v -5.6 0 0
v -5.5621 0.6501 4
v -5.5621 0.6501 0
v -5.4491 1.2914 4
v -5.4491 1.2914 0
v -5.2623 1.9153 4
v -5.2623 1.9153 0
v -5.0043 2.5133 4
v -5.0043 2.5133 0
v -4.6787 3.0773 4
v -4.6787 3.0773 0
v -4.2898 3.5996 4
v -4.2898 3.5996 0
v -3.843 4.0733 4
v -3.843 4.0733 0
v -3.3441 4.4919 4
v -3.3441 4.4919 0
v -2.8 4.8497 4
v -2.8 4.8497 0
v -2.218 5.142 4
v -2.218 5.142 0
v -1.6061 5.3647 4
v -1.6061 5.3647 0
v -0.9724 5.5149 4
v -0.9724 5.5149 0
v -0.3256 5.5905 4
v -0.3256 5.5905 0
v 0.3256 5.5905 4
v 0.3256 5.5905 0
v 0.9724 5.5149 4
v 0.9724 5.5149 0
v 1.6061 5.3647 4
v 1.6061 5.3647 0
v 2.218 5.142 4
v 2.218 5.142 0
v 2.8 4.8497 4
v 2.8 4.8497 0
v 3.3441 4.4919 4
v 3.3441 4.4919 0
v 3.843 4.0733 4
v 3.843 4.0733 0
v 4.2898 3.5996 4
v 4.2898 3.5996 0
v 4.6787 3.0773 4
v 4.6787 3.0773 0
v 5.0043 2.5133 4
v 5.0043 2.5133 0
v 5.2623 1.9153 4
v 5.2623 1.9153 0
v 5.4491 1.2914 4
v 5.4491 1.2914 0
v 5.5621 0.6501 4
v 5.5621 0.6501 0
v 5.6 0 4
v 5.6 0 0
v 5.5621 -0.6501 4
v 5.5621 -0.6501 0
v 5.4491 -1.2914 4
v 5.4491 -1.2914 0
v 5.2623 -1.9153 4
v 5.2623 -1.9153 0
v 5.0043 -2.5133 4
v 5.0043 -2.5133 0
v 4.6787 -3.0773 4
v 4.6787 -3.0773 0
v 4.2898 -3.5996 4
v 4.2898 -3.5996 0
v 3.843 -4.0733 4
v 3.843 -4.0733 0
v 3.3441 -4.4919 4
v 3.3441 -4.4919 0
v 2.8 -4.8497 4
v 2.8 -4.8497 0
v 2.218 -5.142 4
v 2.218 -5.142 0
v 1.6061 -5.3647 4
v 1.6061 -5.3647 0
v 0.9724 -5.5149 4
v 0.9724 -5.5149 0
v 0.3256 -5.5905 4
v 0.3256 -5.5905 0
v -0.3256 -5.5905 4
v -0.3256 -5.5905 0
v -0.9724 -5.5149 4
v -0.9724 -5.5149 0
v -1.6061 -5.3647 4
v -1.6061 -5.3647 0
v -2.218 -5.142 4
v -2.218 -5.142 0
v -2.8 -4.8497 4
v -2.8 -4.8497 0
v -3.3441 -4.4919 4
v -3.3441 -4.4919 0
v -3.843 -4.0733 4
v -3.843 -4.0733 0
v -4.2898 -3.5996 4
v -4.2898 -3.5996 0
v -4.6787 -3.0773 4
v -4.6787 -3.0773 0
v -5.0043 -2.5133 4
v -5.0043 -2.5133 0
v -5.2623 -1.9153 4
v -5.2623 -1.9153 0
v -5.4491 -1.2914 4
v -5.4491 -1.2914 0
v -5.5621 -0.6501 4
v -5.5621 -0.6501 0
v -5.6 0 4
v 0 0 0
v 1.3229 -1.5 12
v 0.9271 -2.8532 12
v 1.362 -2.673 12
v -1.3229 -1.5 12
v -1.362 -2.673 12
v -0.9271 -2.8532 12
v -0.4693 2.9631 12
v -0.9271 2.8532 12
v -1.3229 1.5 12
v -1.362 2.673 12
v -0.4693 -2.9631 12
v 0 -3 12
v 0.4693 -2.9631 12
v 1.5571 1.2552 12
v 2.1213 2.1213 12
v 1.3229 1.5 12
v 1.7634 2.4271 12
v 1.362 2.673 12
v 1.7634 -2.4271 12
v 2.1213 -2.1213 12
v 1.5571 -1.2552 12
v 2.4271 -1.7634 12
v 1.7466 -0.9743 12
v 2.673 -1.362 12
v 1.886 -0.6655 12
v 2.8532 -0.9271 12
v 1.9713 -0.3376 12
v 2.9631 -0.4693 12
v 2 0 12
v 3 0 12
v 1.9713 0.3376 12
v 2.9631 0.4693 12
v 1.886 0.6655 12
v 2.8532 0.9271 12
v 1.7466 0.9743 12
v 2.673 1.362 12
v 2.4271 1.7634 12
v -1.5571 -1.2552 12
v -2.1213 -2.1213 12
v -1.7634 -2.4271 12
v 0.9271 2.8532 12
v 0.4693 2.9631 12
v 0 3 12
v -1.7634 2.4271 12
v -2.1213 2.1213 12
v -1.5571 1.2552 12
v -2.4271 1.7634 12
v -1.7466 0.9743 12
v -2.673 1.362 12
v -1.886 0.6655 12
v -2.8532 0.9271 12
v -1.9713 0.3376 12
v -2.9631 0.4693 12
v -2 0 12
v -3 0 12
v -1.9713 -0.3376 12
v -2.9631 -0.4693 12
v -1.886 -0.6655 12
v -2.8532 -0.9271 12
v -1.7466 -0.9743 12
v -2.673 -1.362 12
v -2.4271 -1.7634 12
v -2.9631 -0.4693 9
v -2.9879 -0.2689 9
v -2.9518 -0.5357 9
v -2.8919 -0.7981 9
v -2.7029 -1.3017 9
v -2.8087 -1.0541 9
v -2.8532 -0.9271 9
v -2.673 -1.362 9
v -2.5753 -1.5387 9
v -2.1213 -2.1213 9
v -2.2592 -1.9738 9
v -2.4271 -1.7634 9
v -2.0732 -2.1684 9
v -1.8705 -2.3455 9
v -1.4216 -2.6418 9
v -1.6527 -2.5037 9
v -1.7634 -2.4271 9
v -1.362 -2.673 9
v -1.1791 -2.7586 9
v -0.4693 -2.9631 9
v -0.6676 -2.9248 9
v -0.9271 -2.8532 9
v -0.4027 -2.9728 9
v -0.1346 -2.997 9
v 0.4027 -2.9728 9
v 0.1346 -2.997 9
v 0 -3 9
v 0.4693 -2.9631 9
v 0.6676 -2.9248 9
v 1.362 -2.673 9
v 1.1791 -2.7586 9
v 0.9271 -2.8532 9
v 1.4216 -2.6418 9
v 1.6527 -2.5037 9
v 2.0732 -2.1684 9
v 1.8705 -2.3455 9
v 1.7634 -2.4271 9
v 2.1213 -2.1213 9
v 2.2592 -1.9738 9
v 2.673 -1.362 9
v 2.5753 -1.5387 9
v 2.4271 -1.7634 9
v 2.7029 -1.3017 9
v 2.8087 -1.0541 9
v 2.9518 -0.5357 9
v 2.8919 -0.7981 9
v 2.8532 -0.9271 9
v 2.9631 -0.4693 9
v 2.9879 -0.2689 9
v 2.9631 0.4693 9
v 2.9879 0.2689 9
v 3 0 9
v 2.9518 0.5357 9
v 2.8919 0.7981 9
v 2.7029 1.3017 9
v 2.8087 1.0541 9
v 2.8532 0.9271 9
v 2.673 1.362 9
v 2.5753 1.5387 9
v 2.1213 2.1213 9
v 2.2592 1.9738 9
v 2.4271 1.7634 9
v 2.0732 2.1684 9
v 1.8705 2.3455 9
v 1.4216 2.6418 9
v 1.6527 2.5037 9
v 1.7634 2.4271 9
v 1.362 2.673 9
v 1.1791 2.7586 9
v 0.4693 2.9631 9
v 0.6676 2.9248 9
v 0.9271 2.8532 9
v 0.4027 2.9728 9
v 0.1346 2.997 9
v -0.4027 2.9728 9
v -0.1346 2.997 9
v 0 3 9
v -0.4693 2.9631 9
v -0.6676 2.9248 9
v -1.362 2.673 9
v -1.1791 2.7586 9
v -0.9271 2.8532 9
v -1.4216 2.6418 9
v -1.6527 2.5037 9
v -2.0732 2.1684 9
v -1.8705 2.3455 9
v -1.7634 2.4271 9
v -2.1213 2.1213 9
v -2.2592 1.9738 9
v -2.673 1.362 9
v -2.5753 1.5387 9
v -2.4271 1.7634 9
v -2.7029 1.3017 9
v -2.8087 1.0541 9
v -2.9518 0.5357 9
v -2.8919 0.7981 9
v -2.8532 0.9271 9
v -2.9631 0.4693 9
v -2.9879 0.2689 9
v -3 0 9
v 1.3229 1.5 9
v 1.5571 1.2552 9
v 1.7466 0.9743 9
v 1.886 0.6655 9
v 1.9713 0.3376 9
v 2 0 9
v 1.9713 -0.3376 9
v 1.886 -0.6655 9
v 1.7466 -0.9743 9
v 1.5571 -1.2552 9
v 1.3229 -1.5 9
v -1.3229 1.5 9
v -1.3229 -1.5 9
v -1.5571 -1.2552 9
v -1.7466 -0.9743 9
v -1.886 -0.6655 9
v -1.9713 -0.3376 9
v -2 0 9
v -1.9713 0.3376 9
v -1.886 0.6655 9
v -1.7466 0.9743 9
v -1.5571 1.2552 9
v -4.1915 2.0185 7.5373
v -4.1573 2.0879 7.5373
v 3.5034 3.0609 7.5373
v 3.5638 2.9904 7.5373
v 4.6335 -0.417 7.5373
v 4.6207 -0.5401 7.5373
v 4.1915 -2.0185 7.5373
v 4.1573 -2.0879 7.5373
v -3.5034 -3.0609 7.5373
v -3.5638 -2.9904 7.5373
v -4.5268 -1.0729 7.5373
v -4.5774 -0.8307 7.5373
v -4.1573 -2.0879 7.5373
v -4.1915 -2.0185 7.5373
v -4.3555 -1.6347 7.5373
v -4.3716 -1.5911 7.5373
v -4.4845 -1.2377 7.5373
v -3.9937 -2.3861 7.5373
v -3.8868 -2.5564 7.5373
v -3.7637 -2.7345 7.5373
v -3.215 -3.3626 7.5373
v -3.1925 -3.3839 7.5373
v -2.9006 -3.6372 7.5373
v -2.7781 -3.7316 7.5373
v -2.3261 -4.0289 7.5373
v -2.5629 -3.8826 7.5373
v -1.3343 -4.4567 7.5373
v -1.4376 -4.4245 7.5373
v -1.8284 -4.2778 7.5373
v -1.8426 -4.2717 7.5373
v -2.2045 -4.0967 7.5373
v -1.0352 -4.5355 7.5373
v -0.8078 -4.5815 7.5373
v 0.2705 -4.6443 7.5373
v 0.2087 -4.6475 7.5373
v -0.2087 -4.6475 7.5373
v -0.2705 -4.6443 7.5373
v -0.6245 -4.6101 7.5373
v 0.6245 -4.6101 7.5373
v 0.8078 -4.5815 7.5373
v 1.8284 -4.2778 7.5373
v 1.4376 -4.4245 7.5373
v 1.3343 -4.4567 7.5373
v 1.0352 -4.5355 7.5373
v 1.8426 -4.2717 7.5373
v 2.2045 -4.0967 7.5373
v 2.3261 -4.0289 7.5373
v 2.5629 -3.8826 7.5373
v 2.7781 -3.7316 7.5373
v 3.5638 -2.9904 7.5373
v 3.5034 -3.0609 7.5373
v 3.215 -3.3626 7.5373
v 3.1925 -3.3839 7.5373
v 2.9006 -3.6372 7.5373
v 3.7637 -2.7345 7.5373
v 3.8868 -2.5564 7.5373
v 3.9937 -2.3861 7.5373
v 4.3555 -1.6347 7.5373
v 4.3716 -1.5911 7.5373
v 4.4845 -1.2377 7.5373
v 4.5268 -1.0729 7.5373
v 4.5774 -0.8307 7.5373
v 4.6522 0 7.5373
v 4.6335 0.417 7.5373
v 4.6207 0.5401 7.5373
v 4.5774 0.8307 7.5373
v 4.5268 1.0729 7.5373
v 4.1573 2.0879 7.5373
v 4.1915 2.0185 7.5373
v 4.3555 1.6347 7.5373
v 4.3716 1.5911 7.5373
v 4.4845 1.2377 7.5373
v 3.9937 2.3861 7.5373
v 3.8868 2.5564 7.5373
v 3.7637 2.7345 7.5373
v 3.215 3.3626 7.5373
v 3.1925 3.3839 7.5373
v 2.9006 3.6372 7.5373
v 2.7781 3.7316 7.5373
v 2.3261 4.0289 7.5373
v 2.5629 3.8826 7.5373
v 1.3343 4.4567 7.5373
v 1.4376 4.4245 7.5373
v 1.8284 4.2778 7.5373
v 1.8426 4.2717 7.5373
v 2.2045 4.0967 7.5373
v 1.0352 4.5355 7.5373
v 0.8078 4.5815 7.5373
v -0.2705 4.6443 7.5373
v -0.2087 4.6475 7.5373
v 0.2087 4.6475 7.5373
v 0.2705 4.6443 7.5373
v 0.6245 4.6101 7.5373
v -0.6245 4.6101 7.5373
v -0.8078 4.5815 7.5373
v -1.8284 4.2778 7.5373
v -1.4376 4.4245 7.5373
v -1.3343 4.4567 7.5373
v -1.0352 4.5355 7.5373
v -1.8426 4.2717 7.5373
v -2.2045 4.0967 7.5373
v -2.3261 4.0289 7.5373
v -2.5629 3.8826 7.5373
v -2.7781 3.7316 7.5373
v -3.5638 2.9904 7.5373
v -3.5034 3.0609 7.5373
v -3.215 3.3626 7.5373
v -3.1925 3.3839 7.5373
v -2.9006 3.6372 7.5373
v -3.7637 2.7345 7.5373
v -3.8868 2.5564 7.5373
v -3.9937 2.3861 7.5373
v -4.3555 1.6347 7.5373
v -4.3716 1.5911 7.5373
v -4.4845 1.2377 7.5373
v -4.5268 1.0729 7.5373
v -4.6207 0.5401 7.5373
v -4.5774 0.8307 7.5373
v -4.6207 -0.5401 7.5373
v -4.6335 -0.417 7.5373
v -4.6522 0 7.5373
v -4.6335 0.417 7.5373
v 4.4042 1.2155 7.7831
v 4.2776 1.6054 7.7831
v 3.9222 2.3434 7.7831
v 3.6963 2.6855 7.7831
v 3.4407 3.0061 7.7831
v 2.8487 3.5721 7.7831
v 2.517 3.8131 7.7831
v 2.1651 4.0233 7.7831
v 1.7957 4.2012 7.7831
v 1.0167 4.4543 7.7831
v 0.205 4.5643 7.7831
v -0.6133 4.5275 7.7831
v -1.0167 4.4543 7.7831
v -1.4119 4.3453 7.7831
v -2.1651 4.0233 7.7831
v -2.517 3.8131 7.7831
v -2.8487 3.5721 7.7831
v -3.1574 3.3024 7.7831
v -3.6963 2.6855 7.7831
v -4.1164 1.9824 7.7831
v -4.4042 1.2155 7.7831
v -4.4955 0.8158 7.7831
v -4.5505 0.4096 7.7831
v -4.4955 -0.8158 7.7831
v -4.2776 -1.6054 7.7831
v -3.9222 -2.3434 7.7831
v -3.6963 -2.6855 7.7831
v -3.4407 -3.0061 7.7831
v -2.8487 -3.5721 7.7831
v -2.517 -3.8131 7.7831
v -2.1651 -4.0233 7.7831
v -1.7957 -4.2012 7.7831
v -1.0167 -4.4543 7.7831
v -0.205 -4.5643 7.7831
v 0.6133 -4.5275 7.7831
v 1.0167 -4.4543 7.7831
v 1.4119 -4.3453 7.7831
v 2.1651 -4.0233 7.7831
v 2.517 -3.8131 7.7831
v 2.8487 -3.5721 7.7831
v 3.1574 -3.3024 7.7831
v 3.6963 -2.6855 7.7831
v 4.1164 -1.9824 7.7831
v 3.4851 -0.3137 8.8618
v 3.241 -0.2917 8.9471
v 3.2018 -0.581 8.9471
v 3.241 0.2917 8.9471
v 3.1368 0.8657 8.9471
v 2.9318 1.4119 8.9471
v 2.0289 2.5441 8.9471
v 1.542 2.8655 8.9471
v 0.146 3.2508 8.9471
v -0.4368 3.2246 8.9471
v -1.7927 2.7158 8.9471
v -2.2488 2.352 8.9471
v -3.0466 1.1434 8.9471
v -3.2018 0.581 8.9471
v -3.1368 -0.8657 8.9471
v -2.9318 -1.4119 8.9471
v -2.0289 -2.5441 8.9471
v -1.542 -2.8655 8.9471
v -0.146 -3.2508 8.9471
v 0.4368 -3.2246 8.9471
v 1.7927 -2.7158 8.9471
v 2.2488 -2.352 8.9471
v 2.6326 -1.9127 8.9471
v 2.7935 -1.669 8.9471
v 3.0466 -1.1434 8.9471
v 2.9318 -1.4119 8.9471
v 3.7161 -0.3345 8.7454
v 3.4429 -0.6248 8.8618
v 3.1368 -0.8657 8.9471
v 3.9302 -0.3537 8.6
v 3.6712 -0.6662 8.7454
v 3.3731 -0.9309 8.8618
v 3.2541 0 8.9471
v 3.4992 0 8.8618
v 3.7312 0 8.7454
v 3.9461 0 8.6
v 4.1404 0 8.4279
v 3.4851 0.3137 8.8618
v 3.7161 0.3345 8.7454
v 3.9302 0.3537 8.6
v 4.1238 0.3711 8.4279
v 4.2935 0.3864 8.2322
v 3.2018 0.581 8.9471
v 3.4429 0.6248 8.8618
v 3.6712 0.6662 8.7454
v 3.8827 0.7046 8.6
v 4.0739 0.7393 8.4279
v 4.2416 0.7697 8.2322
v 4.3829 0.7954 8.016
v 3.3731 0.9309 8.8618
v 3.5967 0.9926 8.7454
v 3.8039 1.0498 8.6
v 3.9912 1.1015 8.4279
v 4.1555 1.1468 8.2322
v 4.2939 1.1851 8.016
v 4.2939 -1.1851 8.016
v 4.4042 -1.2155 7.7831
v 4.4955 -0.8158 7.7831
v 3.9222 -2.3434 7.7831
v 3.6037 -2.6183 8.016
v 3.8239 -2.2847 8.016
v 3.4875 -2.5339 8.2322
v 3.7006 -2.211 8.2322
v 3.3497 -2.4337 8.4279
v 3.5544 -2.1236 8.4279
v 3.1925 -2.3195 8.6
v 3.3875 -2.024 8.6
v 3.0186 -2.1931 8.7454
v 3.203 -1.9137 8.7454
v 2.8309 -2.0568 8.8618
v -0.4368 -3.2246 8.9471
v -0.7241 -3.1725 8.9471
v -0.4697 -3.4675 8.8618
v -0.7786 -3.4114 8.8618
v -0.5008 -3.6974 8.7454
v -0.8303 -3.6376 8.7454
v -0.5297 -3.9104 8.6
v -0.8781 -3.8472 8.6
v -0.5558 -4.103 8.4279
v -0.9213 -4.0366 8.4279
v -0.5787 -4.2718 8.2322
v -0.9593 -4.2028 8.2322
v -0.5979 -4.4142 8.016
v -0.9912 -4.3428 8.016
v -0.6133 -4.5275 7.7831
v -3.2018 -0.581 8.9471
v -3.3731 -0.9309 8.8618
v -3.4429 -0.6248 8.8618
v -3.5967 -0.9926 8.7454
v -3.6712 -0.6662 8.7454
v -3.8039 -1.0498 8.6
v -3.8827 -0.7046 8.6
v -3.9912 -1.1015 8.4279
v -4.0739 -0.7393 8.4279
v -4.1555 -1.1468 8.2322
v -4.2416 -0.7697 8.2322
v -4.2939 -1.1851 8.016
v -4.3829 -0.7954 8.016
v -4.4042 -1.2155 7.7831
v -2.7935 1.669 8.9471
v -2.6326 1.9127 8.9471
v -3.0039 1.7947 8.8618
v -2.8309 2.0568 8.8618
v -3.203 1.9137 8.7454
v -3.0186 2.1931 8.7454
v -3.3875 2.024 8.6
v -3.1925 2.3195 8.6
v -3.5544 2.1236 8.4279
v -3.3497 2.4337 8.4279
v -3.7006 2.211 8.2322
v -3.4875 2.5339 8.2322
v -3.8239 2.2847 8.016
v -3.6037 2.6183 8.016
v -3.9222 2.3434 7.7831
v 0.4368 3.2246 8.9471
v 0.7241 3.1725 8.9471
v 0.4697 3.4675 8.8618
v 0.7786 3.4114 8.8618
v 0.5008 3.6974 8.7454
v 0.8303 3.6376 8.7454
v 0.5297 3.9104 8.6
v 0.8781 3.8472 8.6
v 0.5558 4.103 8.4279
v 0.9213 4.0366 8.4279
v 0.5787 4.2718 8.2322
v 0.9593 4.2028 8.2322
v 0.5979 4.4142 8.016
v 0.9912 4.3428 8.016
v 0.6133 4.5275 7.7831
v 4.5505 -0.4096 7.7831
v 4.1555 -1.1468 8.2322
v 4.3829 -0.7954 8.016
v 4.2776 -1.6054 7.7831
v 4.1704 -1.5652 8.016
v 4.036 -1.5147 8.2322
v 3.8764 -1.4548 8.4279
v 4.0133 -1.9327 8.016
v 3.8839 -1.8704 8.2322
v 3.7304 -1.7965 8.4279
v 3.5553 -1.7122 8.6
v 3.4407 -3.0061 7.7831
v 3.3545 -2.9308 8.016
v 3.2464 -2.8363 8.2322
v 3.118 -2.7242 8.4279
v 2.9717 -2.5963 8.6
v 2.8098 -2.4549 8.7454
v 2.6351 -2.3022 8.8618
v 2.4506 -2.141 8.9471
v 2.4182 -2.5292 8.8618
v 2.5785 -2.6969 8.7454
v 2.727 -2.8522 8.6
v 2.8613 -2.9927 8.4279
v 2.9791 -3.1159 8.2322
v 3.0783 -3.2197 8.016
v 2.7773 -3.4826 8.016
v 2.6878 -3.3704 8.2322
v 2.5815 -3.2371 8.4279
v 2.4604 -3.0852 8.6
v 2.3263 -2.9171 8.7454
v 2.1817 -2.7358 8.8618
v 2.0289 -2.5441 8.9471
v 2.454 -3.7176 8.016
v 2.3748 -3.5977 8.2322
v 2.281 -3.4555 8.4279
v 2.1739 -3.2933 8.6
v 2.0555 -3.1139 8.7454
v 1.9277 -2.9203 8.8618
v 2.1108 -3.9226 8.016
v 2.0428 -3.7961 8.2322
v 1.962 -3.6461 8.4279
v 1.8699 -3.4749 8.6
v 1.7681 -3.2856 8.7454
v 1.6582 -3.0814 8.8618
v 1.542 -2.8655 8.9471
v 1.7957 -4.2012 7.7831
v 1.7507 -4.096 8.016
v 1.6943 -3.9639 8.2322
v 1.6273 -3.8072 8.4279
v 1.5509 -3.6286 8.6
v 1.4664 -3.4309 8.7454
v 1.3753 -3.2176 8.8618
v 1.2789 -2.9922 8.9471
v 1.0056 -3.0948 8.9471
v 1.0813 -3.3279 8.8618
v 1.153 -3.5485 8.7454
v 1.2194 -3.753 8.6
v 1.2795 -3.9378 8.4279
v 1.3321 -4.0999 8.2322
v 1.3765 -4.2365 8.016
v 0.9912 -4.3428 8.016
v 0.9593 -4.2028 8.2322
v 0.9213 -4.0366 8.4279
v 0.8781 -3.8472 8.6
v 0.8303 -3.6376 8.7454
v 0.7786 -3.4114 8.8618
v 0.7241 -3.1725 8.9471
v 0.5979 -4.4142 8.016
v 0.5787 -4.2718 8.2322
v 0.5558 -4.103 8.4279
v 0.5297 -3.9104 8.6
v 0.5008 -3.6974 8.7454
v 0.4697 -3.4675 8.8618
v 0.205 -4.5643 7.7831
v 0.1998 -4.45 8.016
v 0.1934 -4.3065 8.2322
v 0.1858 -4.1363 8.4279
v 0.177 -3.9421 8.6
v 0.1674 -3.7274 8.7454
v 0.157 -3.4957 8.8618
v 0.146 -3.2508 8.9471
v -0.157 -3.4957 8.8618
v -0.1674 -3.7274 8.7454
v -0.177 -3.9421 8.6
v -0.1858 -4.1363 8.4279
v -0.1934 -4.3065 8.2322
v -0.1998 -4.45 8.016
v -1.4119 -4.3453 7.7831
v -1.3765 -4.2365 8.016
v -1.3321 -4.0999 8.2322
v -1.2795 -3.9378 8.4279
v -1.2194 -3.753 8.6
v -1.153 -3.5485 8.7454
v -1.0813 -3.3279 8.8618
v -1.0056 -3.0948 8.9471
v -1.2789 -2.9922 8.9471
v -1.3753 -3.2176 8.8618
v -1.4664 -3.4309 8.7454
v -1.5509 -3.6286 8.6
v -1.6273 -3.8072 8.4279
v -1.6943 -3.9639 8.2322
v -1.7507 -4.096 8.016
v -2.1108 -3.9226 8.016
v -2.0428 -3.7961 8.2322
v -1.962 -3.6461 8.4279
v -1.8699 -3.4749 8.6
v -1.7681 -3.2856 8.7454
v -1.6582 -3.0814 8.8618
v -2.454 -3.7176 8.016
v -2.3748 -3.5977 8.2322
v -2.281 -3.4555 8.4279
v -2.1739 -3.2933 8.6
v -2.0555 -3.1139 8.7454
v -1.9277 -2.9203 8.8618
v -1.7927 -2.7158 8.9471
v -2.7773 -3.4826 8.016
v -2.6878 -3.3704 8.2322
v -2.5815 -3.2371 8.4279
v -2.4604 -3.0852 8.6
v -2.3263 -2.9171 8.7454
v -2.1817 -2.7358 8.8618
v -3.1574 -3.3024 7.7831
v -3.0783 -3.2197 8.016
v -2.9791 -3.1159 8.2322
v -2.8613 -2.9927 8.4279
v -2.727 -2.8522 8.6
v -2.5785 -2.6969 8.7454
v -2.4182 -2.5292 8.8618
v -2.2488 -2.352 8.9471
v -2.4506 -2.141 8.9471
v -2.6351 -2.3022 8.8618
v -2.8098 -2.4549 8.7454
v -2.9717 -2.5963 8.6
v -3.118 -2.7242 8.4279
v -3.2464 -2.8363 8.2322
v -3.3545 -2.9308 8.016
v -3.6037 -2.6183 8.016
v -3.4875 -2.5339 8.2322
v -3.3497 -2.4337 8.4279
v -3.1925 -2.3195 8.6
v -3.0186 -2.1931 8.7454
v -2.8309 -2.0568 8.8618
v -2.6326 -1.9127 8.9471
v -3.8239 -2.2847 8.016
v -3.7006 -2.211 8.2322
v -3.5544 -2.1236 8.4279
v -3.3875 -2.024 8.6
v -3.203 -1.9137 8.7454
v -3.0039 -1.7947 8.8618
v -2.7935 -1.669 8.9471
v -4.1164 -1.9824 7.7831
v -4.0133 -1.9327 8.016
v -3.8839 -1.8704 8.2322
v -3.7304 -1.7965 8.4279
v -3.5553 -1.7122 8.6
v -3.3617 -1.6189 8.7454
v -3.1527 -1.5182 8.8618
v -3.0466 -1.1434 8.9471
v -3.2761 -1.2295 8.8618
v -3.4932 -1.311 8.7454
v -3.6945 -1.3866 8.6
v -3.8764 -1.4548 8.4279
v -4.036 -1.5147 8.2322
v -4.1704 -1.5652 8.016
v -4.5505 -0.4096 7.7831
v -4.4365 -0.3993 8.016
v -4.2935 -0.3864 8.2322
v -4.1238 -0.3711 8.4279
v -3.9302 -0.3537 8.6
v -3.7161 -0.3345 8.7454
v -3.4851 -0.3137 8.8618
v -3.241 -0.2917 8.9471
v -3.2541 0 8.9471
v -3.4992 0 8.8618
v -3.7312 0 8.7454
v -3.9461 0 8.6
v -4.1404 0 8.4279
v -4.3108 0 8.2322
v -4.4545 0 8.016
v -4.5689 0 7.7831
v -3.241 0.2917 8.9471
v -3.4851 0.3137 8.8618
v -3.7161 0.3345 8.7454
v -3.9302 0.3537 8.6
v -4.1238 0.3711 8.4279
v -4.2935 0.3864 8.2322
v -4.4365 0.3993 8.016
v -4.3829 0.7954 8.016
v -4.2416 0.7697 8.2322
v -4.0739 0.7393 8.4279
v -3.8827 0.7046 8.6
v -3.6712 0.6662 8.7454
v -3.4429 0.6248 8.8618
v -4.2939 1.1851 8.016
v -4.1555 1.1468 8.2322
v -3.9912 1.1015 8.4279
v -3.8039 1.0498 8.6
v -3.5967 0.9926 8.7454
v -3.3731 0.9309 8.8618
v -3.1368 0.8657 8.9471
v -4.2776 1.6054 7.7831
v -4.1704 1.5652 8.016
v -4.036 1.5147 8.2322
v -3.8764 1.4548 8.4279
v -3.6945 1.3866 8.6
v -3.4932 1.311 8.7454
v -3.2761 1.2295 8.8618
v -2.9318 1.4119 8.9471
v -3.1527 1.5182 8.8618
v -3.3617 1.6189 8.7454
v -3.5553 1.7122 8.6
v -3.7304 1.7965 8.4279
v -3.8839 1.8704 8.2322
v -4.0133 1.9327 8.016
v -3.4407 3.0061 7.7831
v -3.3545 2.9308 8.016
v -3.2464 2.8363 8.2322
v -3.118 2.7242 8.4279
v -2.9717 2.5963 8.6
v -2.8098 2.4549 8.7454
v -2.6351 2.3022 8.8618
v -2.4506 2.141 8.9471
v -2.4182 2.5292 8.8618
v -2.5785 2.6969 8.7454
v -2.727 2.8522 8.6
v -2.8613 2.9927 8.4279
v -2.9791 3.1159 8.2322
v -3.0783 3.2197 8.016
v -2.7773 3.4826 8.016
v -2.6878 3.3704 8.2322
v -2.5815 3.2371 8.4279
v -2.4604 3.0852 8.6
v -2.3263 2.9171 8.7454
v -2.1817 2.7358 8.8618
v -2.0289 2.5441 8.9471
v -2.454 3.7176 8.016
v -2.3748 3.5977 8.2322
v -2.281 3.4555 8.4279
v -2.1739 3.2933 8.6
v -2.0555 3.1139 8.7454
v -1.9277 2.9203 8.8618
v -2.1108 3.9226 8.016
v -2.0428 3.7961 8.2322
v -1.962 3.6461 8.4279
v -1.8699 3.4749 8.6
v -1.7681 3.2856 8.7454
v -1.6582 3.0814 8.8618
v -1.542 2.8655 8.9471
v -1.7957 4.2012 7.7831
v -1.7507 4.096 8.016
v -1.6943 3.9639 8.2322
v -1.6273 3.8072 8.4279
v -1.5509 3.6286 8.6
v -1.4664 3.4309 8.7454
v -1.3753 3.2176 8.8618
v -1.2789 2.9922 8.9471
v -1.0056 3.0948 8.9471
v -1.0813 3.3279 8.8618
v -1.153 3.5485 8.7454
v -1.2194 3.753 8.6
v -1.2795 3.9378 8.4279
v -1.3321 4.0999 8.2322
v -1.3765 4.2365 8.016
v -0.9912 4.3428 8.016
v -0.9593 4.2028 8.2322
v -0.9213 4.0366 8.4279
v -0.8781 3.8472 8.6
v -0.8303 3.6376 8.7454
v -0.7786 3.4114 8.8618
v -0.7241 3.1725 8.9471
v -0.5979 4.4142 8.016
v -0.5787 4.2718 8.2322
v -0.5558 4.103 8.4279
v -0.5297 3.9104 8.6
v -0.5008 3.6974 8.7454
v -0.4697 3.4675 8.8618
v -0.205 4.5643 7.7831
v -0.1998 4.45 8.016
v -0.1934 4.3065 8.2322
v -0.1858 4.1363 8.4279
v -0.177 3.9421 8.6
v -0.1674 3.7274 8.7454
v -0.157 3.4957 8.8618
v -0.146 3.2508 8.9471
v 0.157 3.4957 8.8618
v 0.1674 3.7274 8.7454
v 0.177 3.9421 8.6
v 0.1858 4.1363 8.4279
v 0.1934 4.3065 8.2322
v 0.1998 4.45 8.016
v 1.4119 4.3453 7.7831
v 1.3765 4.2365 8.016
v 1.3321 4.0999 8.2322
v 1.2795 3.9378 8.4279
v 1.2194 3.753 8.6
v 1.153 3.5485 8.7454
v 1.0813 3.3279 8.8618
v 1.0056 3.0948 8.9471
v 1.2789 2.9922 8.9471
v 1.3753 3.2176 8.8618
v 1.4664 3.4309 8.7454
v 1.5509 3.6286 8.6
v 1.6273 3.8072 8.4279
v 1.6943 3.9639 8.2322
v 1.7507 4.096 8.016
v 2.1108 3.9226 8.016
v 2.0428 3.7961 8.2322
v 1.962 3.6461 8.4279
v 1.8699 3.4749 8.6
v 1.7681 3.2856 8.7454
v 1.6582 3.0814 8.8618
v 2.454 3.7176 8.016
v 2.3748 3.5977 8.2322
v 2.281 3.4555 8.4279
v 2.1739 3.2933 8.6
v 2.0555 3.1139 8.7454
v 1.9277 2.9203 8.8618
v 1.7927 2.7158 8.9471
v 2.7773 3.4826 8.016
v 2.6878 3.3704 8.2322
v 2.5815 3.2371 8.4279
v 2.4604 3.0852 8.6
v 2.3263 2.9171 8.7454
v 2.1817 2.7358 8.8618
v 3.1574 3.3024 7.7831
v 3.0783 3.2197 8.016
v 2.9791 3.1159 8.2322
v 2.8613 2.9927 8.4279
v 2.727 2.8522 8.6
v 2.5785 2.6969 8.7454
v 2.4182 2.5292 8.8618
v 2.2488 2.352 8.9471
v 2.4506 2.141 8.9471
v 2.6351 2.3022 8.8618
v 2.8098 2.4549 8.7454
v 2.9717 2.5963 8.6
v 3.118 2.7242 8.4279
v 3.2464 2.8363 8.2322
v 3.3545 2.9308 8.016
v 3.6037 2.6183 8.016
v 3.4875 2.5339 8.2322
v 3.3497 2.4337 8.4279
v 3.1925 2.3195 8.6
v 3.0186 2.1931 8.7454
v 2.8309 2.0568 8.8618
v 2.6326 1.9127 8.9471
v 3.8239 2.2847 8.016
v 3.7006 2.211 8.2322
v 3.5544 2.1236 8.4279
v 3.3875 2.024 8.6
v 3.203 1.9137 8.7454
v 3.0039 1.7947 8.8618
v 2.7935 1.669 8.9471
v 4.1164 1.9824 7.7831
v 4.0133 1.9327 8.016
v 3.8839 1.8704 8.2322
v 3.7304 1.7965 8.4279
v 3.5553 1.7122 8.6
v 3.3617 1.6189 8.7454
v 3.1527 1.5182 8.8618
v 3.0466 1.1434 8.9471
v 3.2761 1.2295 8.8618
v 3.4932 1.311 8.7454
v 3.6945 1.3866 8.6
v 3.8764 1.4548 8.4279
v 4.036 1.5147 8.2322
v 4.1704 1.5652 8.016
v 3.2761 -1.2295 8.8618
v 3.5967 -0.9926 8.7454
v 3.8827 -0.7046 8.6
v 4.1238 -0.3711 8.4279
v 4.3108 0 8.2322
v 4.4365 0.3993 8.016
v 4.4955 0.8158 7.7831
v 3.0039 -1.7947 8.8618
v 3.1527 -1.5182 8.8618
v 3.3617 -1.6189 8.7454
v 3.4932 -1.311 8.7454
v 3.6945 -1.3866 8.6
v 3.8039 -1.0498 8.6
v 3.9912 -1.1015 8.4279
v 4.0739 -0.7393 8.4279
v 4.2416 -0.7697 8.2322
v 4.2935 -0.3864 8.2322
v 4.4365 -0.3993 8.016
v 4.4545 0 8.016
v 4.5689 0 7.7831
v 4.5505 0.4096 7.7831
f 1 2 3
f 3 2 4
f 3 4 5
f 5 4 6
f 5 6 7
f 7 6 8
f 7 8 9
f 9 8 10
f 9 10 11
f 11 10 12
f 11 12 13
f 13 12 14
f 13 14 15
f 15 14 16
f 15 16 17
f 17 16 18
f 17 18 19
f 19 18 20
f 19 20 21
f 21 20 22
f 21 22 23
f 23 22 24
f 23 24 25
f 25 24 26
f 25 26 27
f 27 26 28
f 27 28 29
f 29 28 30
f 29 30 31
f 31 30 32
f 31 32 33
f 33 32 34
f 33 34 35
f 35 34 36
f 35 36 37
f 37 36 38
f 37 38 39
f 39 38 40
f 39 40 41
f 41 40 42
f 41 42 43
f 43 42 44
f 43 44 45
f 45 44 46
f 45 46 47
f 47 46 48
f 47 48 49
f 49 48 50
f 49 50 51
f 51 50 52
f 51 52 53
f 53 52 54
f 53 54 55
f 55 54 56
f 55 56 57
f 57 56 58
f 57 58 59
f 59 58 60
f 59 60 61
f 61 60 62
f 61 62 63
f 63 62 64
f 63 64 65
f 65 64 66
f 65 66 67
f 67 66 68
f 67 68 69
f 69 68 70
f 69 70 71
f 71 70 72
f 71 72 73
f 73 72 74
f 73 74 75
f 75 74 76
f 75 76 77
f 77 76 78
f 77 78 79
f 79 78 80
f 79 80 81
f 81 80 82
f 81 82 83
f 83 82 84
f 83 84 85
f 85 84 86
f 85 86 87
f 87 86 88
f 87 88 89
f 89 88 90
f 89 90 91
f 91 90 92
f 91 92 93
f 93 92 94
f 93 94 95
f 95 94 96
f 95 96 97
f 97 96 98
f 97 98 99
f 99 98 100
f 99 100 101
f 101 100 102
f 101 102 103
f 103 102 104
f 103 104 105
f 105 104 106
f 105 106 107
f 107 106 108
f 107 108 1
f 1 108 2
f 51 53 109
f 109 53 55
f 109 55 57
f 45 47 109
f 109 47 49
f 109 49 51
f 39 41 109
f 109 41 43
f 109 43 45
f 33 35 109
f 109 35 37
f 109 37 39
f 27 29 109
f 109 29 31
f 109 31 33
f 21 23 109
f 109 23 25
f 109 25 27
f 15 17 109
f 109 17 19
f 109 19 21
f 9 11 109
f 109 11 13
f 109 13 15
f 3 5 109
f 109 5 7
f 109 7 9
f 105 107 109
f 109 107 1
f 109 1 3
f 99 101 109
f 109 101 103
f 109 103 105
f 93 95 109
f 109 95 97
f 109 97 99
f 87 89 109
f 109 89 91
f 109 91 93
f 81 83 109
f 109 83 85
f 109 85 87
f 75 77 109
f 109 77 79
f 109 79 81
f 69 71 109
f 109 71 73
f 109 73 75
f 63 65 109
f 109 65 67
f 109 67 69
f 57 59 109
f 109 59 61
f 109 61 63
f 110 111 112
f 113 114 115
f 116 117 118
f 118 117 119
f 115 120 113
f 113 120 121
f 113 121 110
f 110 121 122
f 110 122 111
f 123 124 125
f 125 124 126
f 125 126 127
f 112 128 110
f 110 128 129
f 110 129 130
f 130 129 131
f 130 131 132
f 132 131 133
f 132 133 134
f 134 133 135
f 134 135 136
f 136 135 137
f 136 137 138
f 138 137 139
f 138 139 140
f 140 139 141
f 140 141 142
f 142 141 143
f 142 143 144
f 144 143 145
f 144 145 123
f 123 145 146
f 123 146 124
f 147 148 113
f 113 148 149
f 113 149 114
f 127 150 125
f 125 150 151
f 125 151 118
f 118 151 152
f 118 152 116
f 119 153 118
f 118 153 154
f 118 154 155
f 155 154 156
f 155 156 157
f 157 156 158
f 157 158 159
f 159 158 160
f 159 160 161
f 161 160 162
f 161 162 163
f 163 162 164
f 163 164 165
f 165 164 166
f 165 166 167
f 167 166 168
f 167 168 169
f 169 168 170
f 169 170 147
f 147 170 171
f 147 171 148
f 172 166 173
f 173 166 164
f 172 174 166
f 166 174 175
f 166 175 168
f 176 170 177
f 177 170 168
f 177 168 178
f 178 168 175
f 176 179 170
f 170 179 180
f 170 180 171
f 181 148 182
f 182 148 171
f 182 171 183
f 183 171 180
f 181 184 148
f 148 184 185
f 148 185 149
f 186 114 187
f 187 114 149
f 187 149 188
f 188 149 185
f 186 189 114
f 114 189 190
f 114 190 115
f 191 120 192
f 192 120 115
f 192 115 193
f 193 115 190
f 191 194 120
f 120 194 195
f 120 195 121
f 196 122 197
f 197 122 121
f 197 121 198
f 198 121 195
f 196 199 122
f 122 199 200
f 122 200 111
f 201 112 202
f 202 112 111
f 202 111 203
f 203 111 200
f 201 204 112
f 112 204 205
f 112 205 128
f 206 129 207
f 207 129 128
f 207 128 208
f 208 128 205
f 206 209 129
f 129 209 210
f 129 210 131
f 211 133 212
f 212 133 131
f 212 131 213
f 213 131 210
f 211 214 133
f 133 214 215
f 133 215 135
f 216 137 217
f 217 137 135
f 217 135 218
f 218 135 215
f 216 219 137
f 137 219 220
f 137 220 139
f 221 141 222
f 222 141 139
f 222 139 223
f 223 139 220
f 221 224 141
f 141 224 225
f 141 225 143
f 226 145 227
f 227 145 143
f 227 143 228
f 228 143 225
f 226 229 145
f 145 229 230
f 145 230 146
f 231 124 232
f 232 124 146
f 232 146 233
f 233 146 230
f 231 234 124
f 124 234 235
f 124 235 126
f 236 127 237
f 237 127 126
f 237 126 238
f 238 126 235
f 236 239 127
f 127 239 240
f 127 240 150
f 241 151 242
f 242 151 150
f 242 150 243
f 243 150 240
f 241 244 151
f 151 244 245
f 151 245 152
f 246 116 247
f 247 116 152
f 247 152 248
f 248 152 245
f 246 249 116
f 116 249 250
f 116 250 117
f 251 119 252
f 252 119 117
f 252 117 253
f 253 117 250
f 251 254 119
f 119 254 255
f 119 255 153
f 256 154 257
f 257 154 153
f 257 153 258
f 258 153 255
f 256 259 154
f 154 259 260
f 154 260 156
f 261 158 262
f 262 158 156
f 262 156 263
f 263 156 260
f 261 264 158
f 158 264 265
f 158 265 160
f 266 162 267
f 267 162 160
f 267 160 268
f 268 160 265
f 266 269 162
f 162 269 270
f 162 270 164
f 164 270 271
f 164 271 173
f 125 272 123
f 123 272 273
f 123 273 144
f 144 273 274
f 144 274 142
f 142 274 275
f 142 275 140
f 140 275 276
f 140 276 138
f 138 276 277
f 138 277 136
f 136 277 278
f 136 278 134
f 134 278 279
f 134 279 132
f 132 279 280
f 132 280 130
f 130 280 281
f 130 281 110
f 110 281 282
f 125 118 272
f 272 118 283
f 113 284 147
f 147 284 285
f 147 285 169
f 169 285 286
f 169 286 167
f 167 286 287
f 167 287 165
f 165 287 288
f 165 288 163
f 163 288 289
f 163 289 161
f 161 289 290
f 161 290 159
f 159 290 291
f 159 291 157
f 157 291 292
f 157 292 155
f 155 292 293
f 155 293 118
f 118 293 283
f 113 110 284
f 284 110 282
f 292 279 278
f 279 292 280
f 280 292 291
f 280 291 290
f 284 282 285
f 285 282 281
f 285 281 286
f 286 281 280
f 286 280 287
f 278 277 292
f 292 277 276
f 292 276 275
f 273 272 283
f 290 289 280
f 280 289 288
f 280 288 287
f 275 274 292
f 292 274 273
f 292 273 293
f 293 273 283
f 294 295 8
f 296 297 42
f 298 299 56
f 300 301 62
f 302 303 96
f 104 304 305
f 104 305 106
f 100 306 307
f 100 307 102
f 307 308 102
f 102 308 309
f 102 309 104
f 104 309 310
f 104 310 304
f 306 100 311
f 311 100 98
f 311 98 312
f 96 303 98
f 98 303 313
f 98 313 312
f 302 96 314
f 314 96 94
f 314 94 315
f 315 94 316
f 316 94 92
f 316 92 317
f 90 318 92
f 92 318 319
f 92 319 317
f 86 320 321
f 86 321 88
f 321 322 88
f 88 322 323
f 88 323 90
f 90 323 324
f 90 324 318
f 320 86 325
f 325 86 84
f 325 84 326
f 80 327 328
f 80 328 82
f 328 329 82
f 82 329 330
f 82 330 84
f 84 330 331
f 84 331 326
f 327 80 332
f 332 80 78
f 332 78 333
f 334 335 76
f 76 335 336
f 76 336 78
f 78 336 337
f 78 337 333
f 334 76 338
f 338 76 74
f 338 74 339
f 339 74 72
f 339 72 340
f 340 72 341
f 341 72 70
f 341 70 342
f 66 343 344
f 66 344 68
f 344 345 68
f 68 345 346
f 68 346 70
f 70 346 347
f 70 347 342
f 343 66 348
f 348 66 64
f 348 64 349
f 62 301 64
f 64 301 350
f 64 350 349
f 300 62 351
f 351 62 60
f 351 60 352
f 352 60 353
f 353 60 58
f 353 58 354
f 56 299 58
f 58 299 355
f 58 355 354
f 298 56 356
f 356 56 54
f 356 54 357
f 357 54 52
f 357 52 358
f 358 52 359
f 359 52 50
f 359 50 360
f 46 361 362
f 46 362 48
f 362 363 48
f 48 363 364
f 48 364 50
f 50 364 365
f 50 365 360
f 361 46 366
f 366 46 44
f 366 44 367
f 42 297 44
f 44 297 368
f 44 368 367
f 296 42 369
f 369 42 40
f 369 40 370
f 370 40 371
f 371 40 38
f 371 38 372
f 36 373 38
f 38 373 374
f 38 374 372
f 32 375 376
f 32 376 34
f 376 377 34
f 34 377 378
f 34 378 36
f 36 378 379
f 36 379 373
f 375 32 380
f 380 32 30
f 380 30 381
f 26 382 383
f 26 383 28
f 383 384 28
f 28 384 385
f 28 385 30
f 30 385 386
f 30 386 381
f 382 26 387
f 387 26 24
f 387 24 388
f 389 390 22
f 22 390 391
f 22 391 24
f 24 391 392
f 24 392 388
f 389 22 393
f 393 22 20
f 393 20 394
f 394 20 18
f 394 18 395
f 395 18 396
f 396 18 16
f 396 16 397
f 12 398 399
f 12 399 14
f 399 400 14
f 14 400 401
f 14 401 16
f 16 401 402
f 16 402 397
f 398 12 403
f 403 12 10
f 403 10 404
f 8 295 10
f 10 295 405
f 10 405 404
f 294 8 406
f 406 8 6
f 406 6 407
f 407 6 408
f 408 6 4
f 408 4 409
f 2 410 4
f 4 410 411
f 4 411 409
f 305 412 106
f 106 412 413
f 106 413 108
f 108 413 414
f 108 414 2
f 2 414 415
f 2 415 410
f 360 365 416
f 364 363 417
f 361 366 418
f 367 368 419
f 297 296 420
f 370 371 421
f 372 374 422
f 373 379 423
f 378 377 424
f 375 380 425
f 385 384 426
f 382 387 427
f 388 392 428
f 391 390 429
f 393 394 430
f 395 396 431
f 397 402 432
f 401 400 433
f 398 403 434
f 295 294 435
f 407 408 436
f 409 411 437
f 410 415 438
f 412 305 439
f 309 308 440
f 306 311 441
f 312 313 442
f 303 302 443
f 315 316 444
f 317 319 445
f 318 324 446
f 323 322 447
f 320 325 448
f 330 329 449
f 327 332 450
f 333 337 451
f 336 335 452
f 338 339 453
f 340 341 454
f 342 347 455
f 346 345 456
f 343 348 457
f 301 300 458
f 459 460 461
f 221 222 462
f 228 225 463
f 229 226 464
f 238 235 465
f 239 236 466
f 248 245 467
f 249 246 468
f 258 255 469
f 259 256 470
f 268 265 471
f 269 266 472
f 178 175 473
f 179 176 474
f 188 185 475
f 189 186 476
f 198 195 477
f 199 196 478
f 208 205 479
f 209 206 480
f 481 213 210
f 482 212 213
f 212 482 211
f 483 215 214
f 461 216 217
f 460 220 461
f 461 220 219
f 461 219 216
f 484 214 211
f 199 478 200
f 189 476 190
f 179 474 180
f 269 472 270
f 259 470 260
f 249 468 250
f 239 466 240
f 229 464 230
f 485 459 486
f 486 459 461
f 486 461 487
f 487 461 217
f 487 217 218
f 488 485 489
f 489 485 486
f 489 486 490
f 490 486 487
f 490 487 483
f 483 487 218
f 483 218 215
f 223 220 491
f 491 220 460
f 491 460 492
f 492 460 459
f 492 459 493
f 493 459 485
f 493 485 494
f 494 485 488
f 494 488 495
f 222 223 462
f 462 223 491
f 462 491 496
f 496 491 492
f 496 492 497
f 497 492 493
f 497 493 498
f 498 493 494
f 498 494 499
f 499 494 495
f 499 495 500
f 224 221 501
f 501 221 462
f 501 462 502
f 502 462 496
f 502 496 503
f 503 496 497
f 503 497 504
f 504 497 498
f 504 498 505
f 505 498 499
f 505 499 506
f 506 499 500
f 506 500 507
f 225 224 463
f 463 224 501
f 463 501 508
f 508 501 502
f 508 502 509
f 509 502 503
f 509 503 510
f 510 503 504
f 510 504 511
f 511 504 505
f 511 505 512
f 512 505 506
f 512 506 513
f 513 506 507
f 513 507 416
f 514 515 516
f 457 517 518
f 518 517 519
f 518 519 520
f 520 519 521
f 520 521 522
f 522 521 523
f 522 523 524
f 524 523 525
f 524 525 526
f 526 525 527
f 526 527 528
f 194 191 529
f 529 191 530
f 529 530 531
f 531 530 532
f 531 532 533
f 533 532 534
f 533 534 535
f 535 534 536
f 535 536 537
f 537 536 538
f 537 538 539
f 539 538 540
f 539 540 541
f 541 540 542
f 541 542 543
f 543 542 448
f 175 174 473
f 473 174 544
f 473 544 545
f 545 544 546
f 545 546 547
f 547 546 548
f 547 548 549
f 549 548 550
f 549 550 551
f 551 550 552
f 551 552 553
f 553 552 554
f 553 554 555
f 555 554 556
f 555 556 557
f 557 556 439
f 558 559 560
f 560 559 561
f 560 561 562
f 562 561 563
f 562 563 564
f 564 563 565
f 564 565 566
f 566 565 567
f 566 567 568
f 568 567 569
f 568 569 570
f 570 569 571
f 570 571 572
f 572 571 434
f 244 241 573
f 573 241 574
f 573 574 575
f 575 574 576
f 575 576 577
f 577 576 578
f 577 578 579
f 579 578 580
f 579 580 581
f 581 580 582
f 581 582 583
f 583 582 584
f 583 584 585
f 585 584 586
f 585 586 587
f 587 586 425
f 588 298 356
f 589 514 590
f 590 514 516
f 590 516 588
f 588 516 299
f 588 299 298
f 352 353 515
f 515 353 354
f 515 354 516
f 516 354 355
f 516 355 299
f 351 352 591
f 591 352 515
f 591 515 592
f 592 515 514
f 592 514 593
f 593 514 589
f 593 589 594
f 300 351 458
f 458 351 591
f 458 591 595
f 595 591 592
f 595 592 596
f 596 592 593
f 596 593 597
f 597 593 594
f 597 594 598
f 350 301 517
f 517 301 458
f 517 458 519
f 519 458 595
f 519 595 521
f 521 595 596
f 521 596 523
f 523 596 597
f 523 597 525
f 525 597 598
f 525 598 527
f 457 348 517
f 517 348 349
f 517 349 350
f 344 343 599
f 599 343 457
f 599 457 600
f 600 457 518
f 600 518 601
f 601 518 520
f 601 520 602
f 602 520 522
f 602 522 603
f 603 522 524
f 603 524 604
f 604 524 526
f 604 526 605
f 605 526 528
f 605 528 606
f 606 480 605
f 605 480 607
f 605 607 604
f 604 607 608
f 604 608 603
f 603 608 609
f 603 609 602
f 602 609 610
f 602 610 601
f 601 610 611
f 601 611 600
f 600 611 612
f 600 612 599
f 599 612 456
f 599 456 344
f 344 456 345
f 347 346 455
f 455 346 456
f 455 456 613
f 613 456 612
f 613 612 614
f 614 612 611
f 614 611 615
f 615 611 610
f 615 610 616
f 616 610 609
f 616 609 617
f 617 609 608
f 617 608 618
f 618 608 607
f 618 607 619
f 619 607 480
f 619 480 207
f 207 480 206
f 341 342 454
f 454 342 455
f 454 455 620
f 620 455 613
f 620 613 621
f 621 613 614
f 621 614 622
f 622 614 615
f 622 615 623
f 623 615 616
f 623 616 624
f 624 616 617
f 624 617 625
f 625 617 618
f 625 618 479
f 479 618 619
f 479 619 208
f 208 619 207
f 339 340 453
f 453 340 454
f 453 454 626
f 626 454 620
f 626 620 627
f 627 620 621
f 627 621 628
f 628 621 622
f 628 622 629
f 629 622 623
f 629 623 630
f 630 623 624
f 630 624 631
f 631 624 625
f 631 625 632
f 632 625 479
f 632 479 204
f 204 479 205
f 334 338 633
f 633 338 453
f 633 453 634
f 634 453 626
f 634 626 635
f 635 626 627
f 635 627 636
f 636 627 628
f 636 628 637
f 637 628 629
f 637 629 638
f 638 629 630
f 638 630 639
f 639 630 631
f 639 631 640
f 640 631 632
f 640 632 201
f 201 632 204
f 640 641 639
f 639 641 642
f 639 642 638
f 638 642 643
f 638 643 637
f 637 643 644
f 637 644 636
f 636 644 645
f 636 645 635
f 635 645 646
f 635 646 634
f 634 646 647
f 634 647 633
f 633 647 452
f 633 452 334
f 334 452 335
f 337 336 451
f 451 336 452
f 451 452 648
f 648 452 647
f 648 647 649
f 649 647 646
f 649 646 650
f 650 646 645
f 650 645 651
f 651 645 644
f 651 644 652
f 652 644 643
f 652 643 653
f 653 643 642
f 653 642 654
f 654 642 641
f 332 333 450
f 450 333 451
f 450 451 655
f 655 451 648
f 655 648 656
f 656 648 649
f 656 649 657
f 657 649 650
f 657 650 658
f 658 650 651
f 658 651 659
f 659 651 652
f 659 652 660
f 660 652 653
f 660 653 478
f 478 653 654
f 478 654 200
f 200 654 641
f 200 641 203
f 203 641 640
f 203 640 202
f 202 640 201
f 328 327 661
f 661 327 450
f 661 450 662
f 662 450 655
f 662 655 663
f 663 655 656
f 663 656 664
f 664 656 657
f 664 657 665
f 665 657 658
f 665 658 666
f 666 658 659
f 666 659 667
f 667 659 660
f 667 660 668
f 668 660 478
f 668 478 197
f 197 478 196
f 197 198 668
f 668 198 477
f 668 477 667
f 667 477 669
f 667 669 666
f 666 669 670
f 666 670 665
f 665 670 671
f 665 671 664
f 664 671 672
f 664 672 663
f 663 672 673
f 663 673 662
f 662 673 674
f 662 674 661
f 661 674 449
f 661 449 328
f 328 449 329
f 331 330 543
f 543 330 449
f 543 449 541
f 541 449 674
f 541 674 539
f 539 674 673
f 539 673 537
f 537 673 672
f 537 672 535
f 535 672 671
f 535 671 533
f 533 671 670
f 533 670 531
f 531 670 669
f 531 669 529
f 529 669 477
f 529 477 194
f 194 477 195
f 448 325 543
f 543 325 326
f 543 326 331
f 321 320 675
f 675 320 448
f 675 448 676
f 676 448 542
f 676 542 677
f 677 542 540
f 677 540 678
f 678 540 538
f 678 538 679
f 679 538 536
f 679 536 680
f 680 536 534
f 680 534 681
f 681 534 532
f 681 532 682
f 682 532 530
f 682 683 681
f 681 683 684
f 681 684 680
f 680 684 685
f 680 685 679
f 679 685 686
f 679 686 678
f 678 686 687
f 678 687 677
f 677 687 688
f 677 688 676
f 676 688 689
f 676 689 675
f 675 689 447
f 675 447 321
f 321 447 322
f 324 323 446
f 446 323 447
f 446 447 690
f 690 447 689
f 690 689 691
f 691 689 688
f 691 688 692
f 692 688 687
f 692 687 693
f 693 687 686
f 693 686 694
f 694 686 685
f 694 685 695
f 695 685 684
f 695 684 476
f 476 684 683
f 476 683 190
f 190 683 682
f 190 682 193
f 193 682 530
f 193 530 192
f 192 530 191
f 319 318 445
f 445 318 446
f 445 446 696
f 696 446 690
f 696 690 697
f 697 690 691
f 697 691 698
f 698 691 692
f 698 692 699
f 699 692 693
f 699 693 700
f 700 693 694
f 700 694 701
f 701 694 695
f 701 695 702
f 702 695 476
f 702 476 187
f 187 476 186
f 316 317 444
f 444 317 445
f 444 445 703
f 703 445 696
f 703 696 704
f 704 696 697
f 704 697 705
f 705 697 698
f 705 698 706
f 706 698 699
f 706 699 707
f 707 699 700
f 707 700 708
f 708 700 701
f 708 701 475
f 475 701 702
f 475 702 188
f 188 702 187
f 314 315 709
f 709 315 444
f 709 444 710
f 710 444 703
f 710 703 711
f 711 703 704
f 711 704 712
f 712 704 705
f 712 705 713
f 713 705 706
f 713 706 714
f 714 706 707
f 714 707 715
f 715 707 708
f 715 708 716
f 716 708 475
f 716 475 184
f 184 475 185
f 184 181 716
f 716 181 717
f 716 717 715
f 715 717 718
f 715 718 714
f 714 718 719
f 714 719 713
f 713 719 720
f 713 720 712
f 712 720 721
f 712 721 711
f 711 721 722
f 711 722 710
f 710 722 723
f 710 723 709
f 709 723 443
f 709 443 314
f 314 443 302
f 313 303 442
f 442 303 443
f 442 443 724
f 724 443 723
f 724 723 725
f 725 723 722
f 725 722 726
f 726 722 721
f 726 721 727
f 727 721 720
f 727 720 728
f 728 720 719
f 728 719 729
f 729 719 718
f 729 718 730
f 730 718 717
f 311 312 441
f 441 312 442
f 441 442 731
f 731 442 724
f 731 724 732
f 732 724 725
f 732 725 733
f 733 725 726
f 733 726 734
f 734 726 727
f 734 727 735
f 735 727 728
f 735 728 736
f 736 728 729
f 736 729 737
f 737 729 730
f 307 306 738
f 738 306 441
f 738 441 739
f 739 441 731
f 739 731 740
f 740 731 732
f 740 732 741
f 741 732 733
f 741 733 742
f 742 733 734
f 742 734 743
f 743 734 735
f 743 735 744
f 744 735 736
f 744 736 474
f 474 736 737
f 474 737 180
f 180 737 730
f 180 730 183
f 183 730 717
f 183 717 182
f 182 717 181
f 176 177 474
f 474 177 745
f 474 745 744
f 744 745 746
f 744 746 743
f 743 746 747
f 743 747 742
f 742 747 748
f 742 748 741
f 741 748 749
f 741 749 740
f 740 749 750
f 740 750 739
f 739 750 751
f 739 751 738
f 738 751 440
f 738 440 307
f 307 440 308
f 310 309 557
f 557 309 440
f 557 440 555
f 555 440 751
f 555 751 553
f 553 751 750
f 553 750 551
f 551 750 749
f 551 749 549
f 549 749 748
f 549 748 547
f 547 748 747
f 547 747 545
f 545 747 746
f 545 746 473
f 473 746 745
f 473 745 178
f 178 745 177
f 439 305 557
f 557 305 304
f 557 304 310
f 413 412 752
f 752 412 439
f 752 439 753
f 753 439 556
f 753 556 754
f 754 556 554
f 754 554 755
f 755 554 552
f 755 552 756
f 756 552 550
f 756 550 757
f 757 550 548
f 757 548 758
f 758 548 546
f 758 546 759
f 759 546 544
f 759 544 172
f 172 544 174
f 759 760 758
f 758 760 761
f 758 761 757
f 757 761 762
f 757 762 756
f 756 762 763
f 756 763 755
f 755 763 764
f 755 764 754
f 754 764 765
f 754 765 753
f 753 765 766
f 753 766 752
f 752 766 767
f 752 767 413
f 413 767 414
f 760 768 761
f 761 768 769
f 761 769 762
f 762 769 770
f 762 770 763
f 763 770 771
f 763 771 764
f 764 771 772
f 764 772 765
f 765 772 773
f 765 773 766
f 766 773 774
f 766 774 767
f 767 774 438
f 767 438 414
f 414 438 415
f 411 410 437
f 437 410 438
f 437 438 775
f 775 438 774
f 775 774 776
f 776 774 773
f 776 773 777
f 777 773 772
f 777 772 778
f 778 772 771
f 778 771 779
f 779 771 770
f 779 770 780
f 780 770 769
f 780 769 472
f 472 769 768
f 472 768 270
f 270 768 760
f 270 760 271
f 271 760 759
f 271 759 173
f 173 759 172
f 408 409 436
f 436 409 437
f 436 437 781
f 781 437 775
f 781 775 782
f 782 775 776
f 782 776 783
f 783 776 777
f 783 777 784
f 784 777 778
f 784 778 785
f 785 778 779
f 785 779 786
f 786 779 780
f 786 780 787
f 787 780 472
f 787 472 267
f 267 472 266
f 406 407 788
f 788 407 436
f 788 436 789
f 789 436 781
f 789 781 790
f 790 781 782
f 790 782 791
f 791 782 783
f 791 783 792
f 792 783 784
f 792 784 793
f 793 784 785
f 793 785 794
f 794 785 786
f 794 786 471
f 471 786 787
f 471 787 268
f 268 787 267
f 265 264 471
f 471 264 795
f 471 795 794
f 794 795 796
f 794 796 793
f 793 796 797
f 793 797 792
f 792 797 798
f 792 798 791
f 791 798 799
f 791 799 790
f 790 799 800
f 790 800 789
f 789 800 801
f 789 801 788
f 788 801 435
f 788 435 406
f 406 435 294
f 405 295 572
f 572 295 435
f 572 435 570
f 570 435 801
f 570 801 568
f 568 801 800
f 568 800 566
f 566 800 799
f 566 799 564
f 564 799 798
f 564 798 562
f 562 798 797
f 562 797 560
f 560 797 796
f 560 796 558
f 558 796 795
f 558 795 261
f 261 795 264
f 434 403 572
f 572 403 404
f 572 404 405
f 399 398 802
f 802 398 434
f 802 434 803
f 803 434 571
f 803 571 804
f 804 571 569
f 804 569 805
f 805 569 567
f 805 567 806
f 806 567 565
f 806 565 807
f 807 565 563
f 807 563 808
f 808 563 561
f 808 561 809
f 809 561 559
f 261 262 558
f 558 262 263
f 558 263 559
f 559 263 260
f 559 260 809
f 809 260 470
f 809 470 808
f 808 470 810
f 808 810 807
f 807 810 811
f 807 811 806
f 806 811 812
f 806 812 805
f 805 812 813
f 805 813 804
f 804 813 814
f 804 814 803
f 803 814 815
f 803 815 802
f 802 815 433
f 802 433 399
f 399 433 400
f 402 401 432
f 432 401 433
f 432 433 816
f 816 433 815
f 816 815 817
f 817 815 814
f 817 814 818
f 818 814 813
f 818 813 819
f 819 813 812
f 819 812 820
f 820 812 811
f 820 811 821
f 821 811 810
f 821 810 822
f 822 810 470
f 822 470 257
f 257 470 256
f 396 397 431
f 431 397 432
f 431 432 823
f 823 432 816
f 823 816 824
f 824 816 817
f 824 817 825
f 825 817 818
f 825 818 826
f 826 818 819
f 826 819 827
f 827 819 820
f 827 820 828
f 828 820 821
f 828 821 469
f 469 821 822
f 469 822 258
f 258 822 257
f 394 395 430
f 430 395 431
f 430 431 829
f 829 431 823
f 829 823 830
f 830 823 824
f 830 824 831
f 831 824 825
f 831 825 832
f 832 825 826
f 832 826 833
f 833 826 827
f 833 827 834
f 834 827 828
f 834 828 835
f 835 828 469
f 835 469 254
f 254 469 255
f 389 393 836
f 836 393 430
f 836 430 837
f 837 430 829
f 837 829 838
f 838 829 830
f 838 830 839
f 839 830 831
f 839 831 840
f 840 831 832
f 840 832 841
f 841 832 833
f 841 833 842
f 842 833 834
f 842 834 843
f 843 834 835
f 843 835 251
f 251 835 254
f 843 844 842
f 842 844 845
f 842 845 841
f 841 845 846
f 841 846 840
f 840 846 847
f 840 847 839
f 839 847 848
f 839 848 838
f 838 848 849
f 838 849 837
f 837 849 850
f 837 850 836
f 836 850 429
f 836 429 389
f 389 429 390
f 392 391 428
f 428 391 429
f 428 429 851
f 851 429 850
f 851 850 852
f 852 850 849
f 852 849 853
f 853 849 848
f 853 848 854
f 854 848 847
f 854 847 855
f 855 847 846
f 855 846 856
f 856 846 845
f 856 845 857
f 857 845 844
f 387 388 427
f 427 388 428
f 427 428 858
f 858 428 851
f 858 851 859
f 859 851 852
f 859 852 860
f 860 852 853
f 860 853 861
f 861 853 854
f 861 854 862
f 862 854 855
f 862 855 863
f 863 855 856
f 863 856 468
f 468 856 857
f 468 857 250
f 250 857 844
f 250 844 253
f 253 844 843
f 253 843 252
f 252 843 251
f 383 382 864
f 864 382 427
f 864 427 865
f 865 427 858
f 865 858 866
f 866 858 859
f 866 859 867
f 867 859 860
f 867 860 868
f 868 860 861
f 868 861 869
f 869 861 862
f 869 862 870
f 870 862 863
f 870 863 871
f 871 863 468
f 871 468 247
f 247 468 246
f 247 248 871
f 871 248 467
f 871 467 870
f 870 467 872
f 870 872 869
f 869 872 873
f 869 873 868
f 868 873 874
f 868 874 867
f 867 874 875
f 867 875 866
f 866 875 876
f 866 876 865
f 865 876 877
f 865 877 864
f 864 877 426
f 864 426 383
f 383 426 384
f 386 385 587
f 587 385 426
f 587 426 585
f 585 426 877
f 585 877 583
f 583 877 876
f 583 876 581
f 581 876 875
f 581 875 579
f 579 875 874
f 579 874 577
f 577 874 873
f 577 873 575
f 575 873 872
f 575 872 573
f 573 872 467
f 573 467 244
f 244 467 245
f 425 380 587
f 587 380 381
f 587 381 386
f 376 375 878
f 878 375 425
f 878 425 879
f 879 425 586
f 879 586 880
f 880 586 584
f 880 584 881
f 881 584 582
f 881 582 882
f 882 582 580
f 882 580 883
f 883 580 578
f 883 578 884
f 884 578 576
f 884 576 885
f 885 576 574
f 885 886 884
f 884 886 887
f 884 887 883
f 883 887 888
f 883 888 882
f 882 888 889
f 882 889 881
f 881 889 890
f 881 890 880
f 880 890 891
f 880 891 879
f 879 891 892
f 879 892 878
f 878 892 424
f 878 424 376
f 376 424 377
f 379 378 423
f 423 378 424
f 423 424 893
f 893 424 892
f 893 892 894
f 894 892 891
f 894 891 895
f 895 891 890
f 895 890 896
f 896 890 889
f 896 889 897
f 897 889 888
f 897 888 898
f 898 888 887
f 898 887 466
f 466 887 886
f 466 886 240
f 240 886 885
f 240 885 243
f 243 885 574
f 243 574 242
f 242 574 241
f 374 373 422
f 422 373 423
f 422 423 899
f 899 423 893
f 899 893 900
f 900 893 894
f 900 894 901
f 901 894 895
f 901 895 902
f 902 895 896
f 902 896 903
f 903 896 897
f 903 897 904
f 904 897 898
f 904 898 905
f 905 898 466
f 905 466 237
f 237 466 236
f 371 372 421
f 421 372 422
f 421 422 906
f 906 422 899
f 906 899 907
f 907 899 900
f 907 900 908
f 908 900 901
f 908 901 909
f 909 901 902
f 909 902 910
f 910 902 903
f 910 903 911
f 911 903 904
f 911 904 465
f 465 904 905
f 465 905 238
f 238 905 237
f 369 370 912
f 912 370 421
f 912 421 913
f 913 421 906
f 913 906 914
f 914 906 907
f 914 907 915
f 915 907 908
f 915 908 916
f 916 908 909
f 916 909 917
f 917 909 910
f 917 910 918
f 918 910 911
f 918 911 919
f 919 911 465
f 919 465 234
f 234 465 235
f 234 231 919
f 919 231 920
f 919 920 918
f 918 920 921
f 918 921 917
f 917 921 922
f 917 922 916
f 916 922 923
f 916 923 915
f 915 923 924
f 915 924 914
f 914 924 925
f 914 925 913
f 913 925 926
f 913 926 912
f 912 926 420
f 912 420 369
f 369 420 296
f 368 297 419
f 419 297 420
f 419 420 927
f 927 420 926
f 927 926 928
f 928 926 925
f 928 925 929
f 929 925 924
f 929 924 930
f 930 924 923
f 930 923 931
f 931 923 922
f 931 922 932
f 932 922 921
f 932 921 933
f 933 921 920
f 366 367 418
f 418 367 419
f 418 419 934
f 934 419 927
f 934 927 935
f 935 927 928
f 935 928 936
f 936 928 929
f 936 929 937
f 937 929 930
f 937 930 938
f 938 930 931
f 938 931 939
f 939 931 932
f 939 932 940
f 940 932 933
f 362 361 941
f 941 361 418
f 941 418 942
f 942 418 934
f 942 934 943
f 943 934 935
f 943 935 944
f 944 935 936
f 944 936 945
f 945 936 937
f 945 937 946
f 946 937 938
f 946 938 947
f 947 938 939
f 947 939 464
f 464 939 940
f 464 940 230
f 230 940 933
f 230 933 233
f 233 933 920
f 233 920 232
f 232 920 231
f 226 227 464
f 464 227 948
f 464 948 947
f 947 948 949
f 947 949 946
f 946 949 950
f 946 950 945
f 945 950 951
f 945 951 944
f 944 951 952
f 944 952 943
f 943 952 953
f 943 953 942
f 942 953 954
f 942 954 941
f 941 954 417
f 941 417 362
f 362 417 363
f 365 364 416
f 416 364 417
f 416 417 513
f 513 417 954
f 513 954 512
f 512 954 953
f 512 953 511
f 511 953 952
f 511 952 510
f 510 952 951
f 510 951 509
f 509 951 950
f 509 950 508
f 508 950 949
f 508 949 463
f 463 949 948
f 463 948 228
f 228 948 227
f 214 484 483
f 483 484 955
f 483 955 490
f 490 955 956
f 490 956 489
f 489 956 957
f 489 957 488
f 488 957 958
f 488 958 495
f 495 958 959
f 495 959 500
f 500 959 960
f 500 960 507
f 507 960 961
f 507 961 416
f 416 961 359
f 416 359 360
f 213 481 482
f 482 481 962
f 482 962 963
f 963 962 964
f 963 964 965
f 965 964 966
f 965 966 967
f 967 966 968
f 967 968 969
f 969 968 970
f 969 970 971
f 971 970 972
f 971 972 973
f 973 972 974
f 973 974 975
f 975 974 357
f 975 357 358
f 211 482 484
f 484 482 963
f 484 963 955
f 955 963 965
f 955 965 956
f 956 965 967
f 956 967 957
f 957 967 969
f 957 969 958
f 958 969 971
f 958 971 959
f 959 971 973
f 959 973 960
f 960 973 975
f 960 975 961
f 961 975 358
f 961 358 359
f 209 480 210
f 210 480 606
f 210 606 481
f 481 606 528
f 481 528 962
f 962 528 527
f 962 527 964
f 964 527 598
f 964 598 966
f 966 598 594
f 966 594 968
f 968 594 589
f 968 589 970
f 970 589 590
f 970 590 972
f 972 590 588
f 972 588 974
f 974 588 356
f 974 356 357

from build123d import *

# Parameters (mm, degrees)
SKETCH1_R           = 5.6
BOSS_EXTRUDE1_DEPTH = 9
SKETCH2_R           = 3
BOSS_EXTRUDE2_DEPTH = 3
CHAMFER1_SIZE       = 5
CHAMFER1_SIZE2      = 1.339745962


with BuildPart() as part:
    # Sketch1 → Boss-Extrude1 (new body)
    with BuildSketch(Plane.XY):
        Circle(SKETCH1_R)
    extrude(amount=BOSS_EXTRUDE1_DEPTH)

    # Sketch2 → Boss-Extrude2 (add)
    with BuildSketch(Plane.XY.offset(9)):
        Circle(SKETCH2_R)
        with BuildLine():
            Line((-1.322875656, -1.5), (1.322875656, -1.5))
            ThreePointArc((1.322875656, -1.5), (2, 0), (1.322875656, 1.5))
            Line((1.322875656, 1.5), (-1.322875656, 1.5))
            ThreePointArc((-1.322875656, 1.5), (-2, 0), (-1.322875656, -1.5))
        make_face(mode=Mode.SUBTRACT)
    extrude(amount=BOSS_EXTRUDE2_DEPTH)

    # Chamfer1
    chamfer1_edges = [part.edges().sort_by_distance(p)[0] for p in [
        (-5.6, 0, 9),
    ]]
    chamfer1_side = [part.faces().sort_by_distance(p)[0] for p in [
        (-5.6, 0, 4.5),
    ]]
    chamfer(chamfer1_edges, length=CHAMFER1_SIZE, length2=CHAMFER1_SIZE2, reference=chamfer1_side[0])

    # Fillet1: read off the stored shape, not the designer's step
    # Fillet1 outline → Fillet1 (revolve, cut)
    with BuildSketch(Plane.XZ):
        with BuildLine():
            Line((4.652186603, 7.537287752), (4.652186603, 9))
            Line((4.652186603, 9), (3, 9))
            ThreePointArc((3, 9), (4.04607373, 8.517119759), (4.652186603, 7.537287752))
        make_face()
    revolve(axis=Axis((0, 0, 0), (0, 0, 1)), mode=Mode.SUBTRACT)


solid = part.part
